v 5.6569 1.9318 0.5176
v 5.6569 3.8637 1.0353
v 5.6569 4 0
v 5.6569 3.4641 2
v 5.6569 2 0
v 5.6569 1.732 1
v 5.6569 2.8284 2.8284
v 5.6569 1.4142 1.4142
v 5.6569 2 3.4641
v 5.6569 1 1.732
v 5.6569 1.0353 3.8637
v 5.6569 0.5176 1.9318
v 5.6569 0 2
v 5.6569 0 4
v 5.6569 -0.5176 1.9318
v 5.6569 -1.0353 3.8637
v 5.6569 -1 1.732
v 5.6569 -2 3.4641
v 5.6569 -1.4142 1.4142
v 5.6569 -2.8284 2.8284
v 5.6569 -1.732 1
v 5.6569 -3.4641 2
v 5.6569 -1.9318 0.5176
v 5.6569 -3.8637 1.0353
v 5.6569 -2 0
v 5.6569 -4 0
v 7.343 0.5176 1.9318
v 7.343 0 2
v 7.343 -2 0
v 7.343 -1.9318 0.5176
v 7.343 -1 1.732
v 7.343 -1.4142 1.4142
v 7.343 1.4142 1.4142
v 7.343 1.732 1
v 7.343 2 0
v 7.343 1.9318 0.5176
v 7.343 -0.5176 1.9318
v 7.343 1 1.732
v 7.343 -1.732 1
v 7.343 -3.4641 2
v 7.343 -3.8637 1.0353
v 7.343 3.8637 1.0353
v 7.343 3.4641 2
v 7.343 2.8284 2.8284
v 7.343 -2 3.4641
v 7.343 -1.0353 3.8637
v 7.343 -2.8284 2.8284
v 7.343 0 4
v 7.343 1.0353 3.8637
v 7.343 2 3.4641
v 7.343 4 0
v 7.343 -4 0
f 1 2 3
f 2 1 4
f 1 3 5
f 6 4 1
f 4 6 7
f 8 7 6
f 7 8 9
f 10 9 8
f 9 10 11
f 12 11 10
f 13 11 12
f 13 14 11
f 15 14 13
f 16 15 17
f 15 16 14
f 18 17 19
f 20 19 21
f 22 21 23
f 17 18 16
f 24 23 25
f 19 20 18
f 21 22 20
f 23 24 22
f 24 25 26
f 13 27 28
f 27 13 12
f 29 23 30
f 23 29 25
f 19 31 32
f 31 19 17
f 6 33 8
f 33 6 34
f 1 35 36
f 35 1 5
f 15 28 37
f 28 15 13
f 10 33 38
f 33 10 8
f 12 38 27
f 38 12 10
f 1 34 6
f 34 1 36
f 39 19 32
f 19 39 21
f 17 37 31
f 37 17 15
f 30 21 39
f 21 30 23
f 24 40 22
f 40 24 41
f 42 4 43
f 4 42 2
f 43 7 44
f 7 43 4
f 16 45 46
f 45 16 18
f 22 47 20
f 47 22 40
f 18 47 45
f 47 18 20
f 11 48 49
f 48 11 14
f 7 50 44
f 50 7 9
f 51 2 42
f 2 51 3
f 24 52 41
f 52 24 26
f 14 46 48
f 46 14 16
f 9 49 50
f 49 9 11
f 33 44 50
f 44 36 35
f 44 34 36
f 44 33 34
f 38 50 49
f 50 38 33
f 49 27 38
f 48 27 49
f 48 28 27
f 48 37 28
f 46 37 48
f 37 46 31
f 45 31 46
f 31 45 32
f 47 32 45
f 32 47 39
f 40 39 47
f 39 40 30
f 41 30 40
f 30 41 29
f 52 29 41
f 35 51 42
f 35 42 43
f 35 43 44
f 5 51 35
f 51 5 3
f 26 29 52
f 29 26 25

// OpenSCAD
// file: ../build_environments.scad
// build_environments.scad: modules to build level sections
//

module pool(diameter=10.0, wall_height=2.0, step_width=3.0, connections=[])
{
    difference() {
        union() {
        difference() {
            cylinder(h=0.5,r1=diameter+step_width,r2=diameter+step_width,$fn=48);
            translate([0,0,-0.1])
                cylinder(h=0.7,r1=diameter,r2=diameter,$fn=48);
        }
        difference() {
            cylinder(h=wall_height,r1=diameter+step_width+1.0,r2=diameter+step_width+1.0,$fn=48);
            translate([0,0,-0.1])
                cylinder(h=wall_height+0.2,r1=diameter+step_width,r2=diameter+step_width,$fn=48);
        }
        }
    
        for (c = connections)
        {
            rotate([0,90,0]) {
                angle = atan2(c[1],c[0]);
                rotate([-angle,0,0]) {
                    cylinder(h=diameter+5.0,r1=c[2],r2=c[2],$fn=48);
                }
            }
        }
    }
}

module straight(length=10.0, width=2.0, dy1=0.0, dy2=0.0, dz=0.0)
{
    dims = [0, 0, 0, 0, 0, (dz/length)];
    matrix = [
        [ 1, dims[0], dims[1], 0 ],
        [ dims[2], 1, dims[4], 0 ],
        [ dims[5], dims[3], 1, 0 ],
        [ 0, 0, 0, 1 ]
    ];
    multmatrix(matrix)
    difference() {
        translate([dy1,0,0])
        union() {
            rotate([0,90,0]) {
                difference() {
                    cylinder(h=(length-dy1-dy2),r1=width+1.0,r2=width+1.0,$fn=24);
                    translate([0,0,-0.1])
                        cylinder(h=(length-dy1-dy2+0.2),r1=width,r2=width,$fn=24);
                }
                difference() {
                    cylinder(h=1.0,r1=width+2.0,r2=width+2.0,$fn=24);
                    translate([0,0,-0.1])
                        cylinder(h=1.2,r1=width,r2=width,$fn=24);
                }
                translate([0,0,(length-dy1-dy2)-1.0]) {
                    difference() {
                        cylinder(h=1.0,r1=width+2.0,r2=width+2.0,$fn=24);
                        translate([0,0,-0.1])
                            cylinder(h=1.2,r1=width,r2=width,$fn=24);
                    }
                }
            }
        }
        translate([0,0,-(2*width+4.0)/2])
            cube([3*length,3*length,2*width+4.0],center=true);
    }
}

module curve(p0=[0,0], center=[0,0], dir=1, angle=0.0, width=2.0)
{
    radius = sqrt((p0[0]-center[0])*(p0[0]-center[0]) + (p0[1]-center[1])*(p0[1]-center[1]));
    if (dir == 0) {
        difference() {
            rotate([0,0,-90])
            difference() {
                rotate_extrude(angle = angle, convexity = 10, $fn=32)
                    translate([radius, 0, 0])
                        circle(r = width+1.0,$fn=24);
                rotate([0,0,-1.0])
                    rotate_extrude(angle = angle+2.0, convexity = 10, $fn=32)
                        translate([radius, 0, 0])
                            circle(r = width,$fn=24);
            }
            translate([0,0,-(2*width+4.0)/2])
                cube([5*radius,5*radius,2*width+4.0],center=true);
        }
    }
    else {
        difference() {
            rotate([0,0,90])
            difference() {
                rotate_extrude(angle = -angle, convexity = 10, $fn=32)
                    translate([radius, 0, 0])
                        circle(r = width+1.0,$fn=24);
                rotate([0,0,1.0])
                    rotate_extrude(angle = -angle-2.0, convexity = 10, $fn=32)
                        translate([radius, 0, 0])
                            circle(r = width,$fn=24);
            }
            translate([0,0,-(2*width+4.0)/2])
                cube([5*radius,5*radius,2*width+4.0],center=true);
        }
    }

}

// test pool
//pool(diameter=12.0000, wall_height=3.0000, step_width=3.0000, connections=[[0.0000,-26.0000,2.0000], [23.6074,0.0000,2.0000]]);

// test straight, slope
//straight(length=26.0000, width=2.0000, dy1=11.8322, dy2=6.7082, dz=0.0000);
//straight(length=29.1549, width=12.0000, dy1=0.0000, dy2=0.0000, dz=-15.0000);

// test curve
//curve(p0=[23.6074, 0.0000], center=[23.6074, 5.0000], dir=0, angle=60.1011, width=2.0000);
//curve(p0=[33.6426, 12.4219], center=[37.9771, 9.9295], dir=1, angle=120.4627, width=2.0000);
// main file
use <../build_environments.scad>;
straight(length=7.3430, width=2.0000, dy1=5.6569, dy2=0.0000, dz=0.0000);
